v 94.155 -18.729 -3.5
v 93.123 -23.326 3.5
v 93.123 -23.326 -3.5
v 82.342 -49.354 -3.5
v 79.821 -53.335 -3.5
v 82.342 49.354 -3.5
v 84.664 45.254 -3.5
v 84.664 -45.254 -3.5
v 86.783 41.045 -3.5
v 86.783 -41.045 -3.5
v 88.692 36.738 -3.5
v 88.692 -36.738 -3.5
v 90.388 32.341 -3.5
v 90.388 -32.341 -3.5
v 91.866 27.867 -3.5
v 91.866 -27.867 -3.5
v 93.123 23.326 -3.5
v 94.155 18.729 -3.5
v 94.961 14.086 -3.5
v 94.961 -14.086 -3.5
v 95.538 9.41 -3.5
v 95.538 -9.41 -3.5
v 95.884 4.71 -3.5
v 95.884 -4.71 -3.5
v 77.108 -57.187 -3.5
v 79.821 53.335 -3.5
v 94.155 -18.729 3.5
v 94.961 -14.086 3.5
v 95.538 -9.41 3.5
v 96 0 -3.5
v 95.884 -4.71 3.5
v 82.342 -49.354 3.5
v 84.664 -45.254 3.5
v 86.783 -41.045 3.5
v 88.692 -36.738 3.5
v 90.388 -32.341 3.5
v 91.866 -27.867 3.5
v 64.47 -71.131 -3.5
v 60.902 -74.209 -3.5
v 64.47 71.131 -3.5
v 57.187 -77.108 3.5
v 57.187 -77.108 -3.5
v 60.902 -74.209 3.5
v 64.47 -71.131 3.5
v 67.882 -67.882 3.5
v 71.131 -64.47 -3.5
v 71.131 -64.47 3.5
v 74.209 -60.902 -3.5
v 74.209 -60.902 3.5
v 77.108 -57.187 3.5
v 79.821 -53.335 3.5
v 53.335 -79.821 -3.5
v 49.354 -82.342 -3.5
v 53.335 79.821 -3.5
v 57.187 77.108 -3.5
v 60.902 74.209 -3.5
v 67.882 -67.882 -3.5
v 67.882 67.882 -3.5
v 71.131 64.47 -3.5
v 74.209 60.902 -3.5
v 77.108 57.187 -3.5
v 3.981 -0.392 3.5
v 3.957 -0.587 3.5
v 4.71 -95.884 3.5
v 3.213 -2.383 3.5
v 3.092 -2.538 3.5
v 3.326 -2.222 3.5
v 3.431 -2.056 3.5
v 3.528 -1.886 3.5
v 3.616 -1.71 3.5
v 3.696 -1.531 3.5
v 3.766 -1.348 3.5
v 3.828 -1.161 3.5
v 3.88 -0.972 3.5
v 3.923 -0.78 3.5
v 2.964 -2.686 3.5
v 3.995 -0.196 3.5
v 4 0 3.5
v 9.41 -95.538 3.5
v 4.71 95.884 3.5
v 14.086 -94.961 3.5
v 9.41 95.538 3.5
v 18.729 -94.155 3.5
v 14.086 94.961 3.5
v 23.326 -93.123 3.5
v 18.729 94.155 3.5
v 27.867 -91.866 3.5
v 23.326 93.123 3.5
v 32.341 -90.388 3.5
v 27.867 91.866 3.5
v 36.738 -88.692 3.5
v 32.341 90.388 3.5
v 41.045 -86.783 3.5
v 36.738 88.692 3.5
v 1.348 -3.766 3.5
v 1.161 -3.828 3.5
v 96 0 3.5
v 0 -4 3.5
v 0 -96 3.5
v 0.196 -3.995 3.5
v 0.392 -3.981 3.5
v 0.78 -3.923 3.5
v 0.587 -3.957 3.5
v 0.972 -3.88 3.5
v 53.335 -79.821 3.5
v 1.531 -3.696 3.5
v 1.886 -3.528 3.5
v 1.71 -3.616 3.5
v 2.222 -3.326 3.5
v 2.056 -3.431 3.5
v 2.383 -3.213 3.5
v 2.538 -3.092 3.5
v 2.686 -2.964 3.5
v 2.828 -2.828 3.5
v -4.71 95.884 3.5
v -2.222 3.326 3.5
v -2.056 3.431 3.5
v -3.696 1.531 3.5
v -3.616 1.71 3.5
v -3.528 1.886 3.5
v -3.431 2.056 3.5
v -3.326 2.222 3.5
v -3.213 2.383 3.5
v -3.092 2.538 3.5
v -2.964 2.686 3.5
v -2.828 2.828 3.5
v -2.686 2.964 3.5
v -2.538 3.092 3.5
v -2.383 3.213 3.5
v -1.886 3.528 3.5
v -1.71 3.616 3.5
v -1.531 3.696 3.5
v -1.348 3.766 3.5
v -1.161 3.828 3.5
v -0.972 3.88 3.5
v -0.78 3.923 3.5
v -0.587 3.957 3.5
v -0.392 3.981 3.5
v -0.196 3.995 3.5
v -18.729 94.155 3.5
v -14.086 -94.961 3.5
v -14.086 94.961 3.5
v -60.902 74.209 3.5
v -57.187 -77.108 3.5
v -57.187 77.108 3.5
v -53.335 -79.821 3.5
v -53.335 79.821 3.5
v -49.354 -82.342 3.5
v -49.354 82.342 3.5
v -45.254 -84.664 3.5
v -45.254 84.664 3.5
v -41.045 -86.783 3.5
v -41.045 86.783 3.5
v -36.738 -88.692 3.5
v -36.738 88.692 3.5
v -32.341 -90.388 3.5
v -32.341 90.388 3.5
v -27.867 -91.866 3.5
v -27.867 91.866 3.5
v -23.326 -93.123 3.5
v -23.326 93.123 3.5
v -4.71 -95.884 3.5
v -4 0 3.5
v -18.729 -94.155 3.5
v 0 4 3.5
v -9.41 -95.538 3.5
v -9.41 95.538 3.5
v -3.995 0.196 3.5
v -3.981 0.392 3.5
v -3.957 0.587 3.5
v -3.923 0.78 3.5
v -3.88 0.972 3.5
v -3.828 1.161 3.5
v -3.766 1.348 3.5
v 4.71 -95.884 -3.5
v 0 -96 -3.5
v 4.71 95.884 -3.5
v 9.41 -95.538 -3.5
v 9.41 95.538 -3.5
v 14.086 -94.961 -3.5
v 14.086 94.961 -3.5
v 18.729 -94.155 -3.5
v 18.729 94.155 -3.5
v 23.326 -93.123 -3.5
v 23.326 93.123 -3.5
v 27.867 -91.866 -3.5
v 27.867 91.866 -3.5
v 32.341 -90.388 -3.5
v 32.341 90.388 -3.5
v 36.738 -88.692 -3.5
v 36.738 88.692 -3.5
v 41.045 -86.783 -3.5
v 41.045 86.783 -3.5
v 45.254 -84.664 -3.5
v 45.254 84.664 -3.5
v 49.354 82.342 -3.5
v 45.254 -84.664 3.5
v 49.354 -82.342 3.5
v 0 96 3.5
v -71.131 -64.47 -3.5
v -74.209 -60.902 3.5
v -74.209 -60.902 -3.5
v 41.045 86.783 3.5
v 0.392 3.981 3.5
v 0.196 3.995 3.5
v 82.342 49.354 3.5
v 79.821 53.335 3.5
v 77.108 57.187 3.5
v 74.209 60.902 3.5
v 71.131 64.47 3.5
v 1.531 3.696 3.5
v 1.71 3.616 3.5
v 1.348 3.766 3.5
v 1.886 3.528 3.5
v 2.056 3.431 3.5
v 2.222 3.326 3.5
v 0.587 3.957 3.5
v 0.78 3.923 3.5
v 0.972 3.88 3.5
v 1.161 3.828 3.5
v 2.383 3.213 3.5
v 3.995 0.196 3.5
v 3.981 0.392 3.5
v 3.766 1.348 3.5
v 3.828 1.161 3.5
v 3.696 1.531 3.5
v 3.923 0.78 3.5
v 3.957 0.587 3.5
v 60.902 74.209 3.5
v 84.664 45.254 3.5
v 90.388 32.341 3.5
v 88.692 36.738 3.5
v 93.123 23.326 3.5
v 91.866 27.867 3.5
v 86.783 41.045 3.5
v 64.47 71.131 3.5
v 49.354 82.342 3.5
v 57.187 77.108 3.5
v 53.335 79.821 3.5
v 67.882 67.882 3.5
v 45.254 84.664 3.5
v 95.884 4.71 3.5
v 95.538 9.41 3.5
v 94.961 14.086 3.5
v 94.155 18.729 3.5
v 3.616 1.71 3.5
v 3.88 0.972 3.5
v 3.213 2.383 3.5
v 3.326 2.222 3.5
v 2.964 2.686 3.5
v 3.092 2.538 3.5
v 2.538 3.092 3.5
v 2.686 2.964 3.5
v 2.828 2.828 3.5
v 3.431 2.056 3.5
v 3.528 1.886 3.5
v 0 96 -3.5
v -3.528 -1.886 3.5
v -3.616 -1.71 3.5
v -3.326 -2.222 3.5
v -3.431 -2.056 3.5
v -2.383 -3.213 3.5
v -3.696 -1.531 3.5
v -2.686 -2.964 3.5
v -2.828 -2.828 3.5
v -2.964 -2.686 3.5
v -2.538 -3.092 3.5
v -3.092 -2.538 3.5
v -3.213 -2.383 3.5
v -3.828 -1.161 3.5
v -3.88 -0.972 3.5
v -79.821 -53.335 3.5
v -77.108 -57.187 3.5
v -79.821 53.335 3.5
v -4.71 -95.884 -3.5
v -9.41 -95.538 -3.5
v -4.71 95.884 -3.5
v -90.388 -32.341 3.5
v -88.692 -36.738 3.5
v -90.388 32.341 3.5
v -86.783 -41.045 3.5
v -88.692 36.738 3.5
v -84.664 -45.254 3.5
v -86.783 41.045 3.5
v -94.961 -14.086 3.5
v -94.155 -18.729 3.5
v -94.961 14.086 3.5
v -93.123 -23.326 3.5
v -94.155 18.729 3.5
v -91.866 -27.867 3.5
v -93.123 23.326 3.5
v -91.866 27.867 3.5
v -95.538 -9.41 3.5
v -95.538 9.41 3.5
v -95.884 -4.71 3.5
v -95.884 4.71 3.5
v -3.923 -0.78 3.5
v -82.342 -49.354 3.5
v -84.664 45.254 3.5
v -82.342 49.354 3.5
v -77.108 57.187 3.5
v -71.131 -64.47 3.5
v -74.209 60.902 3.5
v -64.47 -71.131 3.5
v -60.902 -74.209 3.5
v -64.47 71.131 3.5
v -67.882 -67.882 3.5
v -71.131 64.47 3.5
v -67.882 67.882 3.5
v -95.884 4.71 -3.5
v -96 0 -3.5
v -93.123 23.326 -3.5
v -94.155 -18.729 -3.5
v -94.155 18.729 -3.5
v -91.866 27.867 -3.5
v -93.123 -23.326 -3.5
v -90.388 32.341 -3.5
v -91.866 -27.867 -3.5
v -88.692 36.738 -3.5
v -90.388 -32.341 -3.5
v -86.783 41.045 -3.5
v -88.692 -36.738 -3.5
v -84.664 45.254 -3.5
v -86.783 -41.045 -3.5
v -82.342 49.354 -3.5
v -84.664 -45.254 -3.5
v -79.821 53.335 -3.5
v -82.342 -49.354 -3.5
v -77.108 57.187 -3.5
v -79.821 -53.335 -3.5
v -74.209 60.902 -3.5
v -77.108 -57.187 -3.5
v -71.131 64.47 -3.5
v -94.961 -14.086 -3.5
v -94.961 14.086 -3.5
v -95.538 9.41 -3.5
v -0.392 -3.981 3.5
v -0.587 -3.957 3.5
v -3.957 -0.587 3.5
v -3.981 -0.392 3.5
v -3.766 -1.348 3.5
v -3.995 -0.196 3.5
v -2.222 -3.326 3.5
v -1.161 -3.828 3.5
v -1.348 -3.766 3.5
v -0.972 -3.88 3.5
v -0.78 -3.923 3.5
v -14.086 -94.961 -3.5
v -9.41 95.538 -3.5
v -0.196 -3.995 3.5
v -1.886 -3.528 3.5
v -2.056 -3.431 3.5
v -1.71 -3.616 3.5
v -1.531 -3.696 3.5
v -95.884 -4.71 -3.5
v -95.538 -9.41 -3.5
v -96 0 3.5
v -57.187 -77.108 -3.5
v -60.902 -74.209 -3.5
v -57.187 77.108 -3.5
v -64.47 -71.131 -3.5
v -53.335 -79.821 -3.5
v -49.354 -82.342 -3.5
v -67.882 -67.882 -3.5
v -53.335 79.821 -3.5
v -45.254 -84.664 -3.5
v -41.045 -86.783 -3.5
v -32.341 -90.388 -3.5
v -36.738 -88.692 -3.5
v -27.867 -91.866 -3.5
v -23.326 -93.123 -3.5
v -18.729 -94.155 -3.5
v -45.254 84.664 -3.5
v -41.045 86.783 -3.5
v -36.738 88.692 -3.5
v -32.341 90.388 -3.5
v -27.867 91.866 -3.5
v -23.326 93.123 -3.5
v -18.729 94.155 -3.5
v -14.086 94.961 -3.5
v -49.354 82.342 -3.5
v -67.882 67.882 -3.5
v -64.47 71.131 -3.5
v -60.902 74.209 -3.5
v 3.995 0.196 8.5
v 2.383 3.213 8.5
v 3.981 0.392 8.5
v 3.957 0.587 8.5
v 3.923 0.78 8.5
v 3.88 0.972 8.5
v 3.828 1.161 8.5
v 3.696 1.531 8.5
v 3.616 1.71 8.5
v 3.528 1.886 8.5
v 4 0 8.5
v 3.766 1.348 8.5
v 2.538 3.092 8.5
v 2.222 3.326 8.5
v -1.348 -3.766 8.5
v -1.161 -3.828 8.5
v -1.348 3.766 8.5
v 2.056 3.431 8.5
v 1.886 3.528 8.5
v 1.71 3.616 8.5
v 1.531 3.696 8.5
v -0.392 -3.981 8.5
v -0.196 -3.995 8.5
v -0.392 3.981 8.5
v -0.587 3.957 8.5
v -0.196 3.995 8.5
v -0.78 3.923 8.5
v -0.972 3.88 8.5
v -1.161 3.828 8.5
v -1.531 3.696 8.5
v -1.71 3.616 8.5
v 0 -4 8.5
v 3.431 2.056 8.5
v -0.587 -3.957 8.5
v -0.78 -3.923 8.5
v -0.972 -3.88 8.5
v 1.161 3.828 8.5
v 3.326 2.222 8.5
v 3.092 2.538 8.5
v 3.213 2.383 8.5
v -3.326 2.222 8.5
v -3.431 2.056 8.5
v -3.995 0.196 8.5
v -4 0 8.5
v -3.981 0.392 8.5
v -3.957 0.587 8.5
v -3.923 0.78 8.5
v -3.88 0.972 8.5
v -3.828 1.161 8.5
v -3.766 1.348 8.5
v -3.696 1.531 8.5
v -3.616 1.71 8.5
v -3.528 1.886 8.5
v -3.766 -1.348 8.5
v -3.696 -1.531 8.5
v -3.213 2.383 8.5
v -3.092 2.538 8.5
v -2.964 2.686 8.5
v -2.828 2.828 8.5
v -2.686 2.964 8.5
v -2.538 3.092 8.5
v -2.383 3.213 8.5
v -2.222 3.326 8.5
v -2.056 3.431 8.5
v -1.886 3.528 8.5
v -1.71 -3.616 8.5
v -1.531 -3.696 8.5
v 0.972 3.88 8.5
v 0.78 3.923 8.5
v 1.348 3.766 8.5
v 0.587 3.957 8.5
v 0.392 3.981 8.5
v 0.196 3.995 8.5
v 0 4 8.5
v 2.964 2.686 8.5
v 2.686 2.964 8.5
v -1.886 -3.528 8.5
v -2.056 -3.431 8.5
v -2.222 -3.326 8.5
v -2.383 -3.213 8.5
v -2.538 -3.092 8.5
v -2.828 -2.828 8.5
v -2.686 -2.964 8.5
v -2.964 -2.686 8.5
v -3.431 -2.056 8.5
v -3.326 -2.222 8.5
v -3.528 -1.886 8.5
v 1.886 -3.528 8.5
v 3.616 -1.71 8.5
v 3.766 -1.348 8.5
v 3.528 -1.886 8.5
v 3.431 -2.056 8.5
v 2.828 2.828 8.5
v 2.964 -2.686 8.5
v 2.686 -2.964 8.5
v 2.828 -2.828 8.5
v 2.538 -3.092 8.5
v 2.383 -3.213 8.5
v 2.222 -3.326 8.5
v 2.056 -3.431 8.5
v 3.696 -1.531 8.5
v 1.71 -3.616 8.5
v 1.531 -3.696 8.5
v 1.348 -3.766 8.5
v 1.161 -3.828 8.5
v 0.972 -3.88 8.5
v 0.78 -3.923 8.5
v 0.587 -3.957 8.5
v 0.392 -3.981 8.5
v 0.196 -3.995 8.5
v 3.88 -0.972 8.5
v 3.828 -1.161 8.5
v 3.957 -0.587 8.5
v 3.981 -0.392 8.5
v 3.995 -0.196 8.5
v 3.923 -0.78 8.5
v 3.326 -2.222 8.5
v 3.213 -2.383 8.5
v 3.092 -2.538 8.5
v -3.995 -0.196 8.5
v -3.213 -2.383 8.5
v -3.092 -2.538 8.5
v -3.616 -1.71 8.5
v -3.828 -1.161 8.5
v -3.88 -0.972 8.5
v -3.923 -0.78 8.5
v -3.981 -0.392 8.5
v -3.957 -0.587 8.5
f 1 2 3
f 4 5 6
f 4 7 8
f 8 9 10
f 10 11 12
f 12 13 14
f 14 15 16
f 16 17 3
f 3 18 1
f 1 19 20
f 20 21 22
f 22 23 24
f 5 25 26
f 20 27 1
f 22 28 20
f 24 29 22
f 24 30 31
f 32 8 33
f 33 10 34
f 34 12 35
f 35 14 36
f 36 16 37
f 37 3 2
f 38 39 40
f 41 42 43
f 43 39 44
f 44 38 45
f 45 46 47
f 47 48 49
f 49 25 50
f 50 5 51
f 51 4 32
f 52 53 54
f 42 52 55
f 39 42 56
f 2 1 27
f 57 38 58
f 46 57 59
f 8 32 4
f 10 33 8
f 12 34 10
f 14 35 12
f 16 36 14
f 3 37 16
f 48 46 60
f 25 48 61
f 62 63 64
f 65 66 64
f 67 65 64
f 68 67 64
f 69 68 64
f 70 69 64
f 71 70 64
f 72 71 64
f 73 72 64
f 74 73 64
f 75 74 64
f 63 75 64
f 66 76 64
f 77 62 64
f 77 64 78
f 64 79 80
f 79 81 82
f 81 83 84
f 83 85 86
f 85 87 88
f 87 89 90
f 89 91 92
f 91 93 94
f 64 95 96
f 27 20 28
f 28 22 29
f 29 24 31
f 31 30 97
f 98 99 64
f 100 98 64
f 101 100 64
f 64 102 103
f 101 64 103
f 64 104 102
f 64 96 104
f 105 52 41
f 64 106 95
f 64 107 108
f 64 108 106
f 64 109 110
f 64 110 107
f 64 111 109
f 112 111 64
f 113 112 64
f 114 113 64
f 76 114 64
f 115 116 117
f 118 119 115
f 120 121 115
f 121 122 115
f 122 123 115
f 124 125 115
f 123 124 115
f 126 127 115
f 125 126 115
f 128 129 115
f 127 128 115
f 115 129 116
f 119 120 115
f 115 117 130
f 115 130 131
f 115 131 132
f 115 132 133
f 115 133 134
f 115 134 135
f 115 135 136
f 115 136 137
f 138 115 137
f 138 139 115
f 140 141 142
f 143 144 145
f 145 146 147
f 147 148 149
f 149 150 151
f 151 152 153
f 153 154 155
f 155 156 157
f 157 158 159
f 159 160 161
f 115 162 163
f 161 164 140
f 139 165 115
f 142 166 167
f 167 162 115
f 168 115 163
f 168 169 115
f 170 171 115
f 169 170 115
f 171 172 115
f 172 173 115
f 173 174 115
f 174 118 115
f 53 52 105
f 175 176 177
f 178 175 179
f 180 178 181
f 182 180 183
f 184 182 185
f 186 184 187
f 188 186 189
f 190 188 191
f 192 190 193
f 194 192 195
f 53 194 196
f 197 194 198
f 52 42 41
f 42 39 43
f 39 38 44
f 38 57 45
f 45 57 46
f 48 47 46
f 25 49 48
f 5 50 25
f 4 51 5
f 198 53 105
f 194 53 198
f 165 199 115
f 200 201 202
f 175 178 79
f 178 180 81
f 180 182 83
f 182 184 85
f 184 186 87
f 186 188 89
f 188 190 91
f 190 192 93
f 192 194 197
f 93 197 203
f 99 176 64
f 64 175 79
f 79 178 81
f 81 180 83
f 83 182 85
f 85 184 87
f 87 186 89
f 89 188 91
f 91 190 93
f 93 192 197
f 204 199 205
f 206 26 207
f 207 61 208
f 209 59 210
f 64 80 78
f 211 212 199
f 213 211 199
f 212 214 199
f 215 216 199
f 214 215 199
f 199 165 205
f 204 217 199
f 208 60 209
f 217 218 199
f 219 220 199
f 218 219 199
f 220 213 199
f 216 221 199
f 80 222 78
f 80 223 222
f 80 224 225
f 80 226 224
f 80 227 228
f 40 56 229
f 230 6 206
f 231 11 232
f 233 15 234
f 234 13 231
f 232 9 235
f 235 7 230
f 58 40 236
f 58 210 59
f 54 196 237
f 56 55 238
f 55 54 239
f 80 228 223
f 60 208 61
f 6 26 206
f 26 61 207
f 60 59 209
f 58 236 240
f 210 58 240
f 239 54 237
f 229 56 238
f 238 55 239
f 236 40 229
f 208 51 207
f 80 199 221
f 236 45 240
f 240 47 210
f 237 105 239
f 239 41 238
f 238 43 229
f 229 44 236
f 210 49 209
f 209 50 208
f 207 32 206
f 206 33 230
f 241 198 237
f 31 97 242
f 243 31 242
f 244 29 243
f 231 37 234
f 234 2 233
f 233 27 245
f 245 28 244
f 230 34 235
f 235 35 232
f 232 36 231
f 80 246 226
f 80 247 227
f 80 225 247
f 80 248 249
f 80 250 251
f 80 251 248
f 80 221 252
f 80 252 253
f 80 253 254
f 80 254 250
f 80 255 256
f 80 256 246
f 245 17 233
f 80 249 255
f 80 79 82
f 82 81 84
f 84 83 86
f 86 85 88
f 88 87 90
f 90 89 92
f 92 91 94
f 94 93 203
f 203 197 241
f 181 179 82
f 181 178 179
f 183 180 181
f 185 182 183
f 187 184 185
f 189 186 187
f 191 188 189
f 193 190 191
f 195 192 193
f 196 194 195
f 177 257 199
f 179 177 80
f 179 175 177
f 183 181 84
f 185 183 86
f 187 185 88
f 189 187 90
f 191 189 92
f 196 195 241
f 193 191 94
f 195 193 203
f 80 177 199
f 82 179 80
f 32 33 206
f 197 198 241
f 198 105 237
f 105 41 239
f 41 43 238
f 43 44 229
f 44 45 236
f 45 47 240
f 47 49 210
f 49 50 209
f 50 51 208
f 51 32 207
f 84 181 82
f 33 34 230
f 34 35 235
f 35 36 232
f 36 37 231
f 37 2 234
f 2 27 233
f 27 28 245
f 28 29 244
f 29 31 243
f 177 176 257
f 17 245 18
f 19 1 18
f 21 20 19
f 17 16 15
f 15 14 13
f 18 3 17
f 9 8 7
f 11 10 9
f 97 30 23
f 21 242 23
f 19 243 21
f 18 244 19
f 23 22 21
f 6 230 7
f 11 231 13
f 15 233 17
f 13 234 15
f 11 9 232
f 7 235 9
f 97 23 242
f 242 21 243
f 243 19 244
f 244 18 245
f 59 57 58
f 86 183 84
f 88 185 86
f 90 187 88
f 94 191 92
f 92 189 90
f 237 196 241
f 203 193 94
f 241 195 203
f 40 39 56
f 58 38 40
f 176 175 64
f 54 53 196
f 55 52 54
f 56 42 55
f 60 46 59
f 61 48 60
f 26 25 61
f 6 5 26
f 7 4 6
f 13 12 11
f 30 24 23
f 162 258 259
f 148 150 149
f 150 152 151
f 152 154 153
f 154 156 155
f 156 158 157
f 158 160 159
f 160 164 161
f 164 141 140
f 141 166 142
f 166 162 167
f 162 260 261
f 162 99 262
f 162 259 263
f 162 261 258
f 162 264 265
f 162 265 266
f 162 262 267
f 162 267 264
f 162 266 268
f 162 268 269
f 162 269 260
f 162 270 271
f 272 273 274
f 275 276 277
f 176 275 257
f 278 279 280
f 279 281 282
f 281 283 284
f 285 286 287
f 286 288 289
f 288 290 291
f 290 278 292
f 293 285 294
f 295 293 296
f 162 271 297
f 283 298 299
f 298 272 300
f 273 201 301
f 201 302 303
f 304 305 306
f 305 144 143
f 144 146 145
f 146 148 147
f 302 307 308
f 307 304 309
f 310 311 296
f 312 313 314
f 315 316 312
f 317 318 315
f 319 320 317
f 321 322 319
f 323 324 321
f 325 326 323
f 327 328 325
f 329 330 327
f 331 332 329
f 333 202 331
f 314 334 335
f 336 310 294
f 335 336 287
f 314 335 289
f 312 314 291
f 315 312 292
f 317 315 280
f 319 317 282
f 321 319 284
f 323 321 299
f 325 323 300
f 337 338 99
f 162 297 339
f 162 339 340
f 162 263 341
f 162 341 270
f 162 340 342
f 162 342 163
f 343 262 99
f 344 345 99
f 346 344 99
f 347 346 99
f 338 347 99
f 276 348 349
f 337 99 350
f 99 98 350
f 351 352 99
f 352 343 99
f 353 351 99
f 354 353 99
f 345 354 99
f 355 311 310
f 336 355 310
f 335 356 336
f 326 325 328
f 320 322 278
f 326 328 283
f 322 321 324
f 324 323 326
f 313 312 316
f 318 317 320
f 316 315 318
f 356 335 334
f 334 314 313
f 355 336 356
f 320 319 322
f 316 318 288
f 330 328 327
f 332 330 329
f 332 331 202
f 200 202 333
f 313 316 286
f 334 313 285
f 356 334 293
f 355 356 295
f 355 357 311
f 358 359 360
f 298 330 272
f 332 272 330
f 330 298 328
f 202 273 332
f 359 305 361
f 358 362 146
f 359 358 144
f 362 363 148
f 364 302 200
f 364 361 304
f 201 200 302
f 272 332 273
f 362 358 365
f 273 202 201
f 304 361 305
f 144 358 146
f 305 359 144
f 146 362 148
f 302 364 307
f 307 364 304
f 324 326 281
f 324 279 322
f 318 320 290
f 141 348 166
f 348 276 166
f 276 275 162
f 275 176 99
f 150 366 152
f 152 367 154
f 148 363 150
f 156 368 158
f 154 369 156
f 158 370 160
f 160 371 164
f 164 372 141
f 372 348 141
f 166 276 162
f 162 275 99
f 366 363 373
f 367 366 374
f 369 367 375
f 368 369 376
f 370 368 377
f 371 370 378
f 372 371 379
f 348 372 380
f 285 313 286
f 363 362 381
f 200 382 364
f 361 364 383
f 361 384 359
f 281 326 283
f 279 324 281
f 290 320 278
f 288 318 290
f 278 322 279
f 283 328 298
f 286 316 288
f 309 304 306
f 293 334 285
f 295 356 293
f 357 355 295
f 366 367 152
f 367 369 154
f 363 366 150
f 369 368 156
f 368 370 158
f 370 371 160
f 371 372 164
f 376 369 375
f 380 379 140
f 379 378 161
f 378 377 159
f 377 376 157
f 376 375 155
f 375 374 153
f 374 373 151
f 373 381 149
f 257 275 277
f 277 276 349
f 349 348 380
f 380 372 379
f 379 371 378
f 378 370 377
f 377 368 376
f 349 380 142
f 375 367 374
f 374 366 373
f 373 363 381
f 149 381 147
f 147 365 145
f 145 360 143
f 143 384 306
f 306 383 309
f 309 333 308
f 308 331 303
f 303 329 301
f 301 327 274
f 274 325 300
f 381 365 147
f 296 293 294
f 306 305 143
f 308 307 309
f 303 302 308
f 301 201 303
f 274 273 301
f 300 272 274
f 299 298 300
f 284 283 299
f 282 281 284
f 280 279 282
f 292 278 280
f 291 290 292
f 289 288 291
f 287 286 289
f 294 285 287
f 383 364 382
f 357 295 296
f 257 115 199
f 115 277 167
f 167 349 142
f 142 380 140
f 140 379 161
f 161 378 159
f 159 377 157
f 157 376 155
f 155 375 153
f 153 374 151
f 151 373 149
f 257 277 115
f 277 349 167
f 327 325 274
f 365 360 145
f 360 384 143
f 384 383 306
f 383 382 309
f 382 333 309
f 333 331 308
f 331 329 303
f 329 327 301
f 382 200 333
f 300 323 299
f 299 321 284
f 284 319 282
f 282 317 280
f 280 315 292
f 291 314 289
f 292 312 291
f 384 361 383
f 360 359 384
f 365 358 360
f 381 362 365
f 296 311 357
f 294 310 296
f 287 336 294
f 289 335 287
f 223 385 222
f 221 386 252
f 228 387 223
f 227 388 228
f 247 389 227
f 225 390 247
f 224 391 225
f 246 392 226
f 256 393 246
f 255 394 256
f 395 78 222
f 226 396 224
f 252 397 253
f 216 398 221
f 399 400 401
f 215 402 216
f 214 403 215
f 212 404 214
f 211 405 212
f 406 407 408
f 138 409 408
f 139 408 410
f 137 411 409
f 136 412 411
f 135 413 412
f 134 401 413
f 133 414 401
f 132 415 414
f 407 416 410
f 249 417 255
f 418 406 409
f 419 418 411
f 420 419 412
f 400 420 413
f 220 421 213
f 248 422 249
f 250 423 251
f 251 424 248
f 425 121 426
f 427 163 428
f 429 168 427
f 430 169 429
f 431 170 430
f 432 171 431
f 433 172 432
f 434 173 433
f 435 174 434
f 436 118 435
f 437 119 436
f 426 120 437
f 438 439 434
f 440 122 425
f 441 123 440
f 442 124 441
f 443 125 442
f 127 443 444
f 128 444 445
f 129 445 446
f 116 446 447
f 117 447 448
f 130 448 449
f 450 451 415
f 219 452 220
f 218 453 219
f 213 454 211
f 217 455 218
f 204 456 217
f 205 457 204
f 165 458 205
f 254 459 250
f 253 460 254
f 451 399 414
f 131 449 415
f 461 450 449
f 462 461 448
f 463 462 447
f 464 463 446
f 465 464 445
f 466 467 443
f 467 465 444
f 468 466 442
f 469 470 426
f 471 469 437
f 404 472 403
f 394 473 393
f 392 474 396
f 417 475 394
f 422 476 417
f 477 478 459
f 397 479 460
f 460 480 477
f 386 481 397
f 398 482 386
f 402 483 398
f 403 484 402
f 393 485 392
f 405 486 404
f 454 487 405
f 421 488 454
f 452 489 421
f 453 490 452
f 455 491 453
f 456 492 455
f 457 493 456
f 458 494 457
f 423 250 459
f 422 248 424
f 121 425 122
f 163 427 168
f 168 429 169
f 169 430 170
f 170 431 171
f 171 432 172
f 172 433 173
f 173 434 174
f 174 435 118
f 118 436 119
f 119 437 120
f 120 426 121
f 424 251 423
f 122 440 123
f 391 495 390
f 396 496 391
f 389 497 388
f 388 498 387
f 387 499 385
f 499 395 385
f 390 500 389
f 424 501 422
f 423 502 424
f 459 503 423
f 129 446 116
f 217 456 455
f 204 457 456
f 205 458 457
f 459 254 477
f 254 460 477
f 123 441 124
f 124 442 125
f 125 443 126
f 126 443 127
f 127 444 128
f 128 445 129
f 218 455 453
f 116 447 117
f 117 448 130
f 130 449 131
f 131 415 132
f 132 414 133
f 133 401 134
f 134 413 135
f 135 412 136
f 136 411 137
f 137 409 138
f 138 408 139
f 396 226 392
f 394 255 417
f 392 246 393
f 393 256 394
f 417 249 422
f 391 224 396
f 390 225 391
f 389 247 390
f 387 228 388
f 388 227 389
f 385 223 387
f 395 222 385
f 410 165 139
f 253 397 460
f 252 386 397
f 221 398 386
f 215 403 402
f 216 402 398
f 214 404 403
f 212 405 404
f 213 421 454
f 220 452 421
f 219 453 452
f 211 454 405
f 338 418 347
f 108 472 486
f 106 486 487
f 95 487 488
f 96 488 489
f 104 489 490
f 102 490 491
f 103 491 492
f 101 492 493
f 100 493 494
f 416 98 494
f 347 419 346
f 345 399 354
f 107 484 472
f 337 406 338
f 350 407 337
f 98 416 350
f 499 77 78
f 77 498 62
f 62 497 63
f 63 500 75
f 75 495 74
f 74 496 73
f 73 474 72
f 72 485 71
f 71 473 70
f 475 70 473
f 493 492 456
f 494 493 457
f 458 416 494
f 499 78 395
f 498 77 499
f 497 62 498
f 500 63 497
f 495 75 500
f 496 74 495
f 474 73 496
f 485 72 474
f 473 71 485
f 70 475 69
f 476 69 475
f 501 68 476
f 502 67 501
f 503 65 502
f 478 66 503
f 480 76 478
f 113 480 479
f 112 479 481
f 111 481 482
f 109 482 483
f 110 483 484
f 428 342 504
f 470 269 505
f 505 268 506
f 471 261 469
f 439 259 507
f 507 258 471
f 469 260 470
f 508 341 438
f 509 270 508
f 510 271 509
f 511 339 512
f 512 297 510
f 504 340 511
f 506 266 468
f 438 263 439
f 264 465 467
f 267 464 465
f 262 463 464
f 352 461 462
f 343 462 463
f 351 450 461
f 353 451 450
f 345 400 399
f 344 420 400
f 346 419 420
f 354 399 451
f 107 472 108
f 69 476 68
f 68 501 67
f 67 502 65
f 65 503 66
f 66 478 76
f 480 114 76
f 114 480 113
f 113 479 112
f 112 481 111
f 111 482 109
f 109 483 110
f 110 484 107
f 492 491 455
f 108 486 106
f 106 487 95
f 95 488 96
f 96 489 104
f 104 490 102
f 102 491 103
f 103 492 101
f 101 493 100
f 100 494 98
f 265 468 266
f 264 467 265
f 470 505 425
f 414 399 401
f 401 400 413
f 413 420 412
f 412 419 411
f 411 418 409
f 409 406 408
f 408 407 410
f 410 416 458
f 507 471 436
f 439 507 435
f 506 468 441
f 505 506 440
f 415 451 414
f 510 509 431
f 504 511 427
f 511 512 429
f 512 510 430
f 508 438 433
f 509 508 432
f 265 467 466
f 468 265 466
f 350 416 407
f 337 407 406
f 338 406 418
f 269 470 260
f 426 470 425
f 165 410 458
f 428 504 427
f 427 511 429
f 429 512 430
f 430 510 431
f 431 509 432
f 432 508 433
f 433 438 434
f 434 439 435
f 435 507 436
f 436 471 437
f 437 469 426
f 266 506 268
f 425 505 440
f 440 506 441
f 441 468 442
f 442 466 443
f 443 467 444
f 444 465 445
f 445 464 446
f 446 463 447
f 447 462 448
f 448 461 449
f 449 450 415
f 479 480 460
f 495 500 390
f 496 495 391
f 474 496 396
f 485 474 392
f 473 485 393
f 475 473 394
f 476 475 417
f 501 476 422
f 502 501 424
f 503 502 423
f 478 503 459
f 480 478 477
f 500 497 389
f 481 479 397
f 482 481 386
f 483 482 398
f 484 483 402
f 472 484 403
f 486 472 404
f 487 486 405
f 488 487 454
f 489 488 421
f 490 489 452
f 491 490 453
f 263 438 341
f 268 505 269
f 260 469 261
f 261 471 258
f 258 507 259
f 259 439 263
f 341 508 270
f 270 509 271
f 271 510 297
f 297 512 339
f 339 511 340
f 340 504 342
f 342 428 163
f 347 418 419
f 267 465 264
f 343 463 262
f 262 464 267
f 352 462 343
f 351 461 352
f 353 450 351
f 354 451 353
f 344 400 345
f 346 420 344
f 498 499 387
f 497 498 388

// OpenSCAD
$fn = $preview ? 32 : 128;

// Parameters
tolerance = 2;
diameter = 192;
thickness = 2;
bearingInnerDiameter = 8;
bearingOuterDiameter = 22;
bearingHeight = 7;
baseHeight = 7;

cylinder(d=diameter, h=baseHeight, center=true);
translate([0, 0, ((bearingHeight - tolerance) + baseHeight) / 2]) {
    cylinder(d=bearingInnerDiameter, h = bearingHeight - tolerance, center=true);
}
